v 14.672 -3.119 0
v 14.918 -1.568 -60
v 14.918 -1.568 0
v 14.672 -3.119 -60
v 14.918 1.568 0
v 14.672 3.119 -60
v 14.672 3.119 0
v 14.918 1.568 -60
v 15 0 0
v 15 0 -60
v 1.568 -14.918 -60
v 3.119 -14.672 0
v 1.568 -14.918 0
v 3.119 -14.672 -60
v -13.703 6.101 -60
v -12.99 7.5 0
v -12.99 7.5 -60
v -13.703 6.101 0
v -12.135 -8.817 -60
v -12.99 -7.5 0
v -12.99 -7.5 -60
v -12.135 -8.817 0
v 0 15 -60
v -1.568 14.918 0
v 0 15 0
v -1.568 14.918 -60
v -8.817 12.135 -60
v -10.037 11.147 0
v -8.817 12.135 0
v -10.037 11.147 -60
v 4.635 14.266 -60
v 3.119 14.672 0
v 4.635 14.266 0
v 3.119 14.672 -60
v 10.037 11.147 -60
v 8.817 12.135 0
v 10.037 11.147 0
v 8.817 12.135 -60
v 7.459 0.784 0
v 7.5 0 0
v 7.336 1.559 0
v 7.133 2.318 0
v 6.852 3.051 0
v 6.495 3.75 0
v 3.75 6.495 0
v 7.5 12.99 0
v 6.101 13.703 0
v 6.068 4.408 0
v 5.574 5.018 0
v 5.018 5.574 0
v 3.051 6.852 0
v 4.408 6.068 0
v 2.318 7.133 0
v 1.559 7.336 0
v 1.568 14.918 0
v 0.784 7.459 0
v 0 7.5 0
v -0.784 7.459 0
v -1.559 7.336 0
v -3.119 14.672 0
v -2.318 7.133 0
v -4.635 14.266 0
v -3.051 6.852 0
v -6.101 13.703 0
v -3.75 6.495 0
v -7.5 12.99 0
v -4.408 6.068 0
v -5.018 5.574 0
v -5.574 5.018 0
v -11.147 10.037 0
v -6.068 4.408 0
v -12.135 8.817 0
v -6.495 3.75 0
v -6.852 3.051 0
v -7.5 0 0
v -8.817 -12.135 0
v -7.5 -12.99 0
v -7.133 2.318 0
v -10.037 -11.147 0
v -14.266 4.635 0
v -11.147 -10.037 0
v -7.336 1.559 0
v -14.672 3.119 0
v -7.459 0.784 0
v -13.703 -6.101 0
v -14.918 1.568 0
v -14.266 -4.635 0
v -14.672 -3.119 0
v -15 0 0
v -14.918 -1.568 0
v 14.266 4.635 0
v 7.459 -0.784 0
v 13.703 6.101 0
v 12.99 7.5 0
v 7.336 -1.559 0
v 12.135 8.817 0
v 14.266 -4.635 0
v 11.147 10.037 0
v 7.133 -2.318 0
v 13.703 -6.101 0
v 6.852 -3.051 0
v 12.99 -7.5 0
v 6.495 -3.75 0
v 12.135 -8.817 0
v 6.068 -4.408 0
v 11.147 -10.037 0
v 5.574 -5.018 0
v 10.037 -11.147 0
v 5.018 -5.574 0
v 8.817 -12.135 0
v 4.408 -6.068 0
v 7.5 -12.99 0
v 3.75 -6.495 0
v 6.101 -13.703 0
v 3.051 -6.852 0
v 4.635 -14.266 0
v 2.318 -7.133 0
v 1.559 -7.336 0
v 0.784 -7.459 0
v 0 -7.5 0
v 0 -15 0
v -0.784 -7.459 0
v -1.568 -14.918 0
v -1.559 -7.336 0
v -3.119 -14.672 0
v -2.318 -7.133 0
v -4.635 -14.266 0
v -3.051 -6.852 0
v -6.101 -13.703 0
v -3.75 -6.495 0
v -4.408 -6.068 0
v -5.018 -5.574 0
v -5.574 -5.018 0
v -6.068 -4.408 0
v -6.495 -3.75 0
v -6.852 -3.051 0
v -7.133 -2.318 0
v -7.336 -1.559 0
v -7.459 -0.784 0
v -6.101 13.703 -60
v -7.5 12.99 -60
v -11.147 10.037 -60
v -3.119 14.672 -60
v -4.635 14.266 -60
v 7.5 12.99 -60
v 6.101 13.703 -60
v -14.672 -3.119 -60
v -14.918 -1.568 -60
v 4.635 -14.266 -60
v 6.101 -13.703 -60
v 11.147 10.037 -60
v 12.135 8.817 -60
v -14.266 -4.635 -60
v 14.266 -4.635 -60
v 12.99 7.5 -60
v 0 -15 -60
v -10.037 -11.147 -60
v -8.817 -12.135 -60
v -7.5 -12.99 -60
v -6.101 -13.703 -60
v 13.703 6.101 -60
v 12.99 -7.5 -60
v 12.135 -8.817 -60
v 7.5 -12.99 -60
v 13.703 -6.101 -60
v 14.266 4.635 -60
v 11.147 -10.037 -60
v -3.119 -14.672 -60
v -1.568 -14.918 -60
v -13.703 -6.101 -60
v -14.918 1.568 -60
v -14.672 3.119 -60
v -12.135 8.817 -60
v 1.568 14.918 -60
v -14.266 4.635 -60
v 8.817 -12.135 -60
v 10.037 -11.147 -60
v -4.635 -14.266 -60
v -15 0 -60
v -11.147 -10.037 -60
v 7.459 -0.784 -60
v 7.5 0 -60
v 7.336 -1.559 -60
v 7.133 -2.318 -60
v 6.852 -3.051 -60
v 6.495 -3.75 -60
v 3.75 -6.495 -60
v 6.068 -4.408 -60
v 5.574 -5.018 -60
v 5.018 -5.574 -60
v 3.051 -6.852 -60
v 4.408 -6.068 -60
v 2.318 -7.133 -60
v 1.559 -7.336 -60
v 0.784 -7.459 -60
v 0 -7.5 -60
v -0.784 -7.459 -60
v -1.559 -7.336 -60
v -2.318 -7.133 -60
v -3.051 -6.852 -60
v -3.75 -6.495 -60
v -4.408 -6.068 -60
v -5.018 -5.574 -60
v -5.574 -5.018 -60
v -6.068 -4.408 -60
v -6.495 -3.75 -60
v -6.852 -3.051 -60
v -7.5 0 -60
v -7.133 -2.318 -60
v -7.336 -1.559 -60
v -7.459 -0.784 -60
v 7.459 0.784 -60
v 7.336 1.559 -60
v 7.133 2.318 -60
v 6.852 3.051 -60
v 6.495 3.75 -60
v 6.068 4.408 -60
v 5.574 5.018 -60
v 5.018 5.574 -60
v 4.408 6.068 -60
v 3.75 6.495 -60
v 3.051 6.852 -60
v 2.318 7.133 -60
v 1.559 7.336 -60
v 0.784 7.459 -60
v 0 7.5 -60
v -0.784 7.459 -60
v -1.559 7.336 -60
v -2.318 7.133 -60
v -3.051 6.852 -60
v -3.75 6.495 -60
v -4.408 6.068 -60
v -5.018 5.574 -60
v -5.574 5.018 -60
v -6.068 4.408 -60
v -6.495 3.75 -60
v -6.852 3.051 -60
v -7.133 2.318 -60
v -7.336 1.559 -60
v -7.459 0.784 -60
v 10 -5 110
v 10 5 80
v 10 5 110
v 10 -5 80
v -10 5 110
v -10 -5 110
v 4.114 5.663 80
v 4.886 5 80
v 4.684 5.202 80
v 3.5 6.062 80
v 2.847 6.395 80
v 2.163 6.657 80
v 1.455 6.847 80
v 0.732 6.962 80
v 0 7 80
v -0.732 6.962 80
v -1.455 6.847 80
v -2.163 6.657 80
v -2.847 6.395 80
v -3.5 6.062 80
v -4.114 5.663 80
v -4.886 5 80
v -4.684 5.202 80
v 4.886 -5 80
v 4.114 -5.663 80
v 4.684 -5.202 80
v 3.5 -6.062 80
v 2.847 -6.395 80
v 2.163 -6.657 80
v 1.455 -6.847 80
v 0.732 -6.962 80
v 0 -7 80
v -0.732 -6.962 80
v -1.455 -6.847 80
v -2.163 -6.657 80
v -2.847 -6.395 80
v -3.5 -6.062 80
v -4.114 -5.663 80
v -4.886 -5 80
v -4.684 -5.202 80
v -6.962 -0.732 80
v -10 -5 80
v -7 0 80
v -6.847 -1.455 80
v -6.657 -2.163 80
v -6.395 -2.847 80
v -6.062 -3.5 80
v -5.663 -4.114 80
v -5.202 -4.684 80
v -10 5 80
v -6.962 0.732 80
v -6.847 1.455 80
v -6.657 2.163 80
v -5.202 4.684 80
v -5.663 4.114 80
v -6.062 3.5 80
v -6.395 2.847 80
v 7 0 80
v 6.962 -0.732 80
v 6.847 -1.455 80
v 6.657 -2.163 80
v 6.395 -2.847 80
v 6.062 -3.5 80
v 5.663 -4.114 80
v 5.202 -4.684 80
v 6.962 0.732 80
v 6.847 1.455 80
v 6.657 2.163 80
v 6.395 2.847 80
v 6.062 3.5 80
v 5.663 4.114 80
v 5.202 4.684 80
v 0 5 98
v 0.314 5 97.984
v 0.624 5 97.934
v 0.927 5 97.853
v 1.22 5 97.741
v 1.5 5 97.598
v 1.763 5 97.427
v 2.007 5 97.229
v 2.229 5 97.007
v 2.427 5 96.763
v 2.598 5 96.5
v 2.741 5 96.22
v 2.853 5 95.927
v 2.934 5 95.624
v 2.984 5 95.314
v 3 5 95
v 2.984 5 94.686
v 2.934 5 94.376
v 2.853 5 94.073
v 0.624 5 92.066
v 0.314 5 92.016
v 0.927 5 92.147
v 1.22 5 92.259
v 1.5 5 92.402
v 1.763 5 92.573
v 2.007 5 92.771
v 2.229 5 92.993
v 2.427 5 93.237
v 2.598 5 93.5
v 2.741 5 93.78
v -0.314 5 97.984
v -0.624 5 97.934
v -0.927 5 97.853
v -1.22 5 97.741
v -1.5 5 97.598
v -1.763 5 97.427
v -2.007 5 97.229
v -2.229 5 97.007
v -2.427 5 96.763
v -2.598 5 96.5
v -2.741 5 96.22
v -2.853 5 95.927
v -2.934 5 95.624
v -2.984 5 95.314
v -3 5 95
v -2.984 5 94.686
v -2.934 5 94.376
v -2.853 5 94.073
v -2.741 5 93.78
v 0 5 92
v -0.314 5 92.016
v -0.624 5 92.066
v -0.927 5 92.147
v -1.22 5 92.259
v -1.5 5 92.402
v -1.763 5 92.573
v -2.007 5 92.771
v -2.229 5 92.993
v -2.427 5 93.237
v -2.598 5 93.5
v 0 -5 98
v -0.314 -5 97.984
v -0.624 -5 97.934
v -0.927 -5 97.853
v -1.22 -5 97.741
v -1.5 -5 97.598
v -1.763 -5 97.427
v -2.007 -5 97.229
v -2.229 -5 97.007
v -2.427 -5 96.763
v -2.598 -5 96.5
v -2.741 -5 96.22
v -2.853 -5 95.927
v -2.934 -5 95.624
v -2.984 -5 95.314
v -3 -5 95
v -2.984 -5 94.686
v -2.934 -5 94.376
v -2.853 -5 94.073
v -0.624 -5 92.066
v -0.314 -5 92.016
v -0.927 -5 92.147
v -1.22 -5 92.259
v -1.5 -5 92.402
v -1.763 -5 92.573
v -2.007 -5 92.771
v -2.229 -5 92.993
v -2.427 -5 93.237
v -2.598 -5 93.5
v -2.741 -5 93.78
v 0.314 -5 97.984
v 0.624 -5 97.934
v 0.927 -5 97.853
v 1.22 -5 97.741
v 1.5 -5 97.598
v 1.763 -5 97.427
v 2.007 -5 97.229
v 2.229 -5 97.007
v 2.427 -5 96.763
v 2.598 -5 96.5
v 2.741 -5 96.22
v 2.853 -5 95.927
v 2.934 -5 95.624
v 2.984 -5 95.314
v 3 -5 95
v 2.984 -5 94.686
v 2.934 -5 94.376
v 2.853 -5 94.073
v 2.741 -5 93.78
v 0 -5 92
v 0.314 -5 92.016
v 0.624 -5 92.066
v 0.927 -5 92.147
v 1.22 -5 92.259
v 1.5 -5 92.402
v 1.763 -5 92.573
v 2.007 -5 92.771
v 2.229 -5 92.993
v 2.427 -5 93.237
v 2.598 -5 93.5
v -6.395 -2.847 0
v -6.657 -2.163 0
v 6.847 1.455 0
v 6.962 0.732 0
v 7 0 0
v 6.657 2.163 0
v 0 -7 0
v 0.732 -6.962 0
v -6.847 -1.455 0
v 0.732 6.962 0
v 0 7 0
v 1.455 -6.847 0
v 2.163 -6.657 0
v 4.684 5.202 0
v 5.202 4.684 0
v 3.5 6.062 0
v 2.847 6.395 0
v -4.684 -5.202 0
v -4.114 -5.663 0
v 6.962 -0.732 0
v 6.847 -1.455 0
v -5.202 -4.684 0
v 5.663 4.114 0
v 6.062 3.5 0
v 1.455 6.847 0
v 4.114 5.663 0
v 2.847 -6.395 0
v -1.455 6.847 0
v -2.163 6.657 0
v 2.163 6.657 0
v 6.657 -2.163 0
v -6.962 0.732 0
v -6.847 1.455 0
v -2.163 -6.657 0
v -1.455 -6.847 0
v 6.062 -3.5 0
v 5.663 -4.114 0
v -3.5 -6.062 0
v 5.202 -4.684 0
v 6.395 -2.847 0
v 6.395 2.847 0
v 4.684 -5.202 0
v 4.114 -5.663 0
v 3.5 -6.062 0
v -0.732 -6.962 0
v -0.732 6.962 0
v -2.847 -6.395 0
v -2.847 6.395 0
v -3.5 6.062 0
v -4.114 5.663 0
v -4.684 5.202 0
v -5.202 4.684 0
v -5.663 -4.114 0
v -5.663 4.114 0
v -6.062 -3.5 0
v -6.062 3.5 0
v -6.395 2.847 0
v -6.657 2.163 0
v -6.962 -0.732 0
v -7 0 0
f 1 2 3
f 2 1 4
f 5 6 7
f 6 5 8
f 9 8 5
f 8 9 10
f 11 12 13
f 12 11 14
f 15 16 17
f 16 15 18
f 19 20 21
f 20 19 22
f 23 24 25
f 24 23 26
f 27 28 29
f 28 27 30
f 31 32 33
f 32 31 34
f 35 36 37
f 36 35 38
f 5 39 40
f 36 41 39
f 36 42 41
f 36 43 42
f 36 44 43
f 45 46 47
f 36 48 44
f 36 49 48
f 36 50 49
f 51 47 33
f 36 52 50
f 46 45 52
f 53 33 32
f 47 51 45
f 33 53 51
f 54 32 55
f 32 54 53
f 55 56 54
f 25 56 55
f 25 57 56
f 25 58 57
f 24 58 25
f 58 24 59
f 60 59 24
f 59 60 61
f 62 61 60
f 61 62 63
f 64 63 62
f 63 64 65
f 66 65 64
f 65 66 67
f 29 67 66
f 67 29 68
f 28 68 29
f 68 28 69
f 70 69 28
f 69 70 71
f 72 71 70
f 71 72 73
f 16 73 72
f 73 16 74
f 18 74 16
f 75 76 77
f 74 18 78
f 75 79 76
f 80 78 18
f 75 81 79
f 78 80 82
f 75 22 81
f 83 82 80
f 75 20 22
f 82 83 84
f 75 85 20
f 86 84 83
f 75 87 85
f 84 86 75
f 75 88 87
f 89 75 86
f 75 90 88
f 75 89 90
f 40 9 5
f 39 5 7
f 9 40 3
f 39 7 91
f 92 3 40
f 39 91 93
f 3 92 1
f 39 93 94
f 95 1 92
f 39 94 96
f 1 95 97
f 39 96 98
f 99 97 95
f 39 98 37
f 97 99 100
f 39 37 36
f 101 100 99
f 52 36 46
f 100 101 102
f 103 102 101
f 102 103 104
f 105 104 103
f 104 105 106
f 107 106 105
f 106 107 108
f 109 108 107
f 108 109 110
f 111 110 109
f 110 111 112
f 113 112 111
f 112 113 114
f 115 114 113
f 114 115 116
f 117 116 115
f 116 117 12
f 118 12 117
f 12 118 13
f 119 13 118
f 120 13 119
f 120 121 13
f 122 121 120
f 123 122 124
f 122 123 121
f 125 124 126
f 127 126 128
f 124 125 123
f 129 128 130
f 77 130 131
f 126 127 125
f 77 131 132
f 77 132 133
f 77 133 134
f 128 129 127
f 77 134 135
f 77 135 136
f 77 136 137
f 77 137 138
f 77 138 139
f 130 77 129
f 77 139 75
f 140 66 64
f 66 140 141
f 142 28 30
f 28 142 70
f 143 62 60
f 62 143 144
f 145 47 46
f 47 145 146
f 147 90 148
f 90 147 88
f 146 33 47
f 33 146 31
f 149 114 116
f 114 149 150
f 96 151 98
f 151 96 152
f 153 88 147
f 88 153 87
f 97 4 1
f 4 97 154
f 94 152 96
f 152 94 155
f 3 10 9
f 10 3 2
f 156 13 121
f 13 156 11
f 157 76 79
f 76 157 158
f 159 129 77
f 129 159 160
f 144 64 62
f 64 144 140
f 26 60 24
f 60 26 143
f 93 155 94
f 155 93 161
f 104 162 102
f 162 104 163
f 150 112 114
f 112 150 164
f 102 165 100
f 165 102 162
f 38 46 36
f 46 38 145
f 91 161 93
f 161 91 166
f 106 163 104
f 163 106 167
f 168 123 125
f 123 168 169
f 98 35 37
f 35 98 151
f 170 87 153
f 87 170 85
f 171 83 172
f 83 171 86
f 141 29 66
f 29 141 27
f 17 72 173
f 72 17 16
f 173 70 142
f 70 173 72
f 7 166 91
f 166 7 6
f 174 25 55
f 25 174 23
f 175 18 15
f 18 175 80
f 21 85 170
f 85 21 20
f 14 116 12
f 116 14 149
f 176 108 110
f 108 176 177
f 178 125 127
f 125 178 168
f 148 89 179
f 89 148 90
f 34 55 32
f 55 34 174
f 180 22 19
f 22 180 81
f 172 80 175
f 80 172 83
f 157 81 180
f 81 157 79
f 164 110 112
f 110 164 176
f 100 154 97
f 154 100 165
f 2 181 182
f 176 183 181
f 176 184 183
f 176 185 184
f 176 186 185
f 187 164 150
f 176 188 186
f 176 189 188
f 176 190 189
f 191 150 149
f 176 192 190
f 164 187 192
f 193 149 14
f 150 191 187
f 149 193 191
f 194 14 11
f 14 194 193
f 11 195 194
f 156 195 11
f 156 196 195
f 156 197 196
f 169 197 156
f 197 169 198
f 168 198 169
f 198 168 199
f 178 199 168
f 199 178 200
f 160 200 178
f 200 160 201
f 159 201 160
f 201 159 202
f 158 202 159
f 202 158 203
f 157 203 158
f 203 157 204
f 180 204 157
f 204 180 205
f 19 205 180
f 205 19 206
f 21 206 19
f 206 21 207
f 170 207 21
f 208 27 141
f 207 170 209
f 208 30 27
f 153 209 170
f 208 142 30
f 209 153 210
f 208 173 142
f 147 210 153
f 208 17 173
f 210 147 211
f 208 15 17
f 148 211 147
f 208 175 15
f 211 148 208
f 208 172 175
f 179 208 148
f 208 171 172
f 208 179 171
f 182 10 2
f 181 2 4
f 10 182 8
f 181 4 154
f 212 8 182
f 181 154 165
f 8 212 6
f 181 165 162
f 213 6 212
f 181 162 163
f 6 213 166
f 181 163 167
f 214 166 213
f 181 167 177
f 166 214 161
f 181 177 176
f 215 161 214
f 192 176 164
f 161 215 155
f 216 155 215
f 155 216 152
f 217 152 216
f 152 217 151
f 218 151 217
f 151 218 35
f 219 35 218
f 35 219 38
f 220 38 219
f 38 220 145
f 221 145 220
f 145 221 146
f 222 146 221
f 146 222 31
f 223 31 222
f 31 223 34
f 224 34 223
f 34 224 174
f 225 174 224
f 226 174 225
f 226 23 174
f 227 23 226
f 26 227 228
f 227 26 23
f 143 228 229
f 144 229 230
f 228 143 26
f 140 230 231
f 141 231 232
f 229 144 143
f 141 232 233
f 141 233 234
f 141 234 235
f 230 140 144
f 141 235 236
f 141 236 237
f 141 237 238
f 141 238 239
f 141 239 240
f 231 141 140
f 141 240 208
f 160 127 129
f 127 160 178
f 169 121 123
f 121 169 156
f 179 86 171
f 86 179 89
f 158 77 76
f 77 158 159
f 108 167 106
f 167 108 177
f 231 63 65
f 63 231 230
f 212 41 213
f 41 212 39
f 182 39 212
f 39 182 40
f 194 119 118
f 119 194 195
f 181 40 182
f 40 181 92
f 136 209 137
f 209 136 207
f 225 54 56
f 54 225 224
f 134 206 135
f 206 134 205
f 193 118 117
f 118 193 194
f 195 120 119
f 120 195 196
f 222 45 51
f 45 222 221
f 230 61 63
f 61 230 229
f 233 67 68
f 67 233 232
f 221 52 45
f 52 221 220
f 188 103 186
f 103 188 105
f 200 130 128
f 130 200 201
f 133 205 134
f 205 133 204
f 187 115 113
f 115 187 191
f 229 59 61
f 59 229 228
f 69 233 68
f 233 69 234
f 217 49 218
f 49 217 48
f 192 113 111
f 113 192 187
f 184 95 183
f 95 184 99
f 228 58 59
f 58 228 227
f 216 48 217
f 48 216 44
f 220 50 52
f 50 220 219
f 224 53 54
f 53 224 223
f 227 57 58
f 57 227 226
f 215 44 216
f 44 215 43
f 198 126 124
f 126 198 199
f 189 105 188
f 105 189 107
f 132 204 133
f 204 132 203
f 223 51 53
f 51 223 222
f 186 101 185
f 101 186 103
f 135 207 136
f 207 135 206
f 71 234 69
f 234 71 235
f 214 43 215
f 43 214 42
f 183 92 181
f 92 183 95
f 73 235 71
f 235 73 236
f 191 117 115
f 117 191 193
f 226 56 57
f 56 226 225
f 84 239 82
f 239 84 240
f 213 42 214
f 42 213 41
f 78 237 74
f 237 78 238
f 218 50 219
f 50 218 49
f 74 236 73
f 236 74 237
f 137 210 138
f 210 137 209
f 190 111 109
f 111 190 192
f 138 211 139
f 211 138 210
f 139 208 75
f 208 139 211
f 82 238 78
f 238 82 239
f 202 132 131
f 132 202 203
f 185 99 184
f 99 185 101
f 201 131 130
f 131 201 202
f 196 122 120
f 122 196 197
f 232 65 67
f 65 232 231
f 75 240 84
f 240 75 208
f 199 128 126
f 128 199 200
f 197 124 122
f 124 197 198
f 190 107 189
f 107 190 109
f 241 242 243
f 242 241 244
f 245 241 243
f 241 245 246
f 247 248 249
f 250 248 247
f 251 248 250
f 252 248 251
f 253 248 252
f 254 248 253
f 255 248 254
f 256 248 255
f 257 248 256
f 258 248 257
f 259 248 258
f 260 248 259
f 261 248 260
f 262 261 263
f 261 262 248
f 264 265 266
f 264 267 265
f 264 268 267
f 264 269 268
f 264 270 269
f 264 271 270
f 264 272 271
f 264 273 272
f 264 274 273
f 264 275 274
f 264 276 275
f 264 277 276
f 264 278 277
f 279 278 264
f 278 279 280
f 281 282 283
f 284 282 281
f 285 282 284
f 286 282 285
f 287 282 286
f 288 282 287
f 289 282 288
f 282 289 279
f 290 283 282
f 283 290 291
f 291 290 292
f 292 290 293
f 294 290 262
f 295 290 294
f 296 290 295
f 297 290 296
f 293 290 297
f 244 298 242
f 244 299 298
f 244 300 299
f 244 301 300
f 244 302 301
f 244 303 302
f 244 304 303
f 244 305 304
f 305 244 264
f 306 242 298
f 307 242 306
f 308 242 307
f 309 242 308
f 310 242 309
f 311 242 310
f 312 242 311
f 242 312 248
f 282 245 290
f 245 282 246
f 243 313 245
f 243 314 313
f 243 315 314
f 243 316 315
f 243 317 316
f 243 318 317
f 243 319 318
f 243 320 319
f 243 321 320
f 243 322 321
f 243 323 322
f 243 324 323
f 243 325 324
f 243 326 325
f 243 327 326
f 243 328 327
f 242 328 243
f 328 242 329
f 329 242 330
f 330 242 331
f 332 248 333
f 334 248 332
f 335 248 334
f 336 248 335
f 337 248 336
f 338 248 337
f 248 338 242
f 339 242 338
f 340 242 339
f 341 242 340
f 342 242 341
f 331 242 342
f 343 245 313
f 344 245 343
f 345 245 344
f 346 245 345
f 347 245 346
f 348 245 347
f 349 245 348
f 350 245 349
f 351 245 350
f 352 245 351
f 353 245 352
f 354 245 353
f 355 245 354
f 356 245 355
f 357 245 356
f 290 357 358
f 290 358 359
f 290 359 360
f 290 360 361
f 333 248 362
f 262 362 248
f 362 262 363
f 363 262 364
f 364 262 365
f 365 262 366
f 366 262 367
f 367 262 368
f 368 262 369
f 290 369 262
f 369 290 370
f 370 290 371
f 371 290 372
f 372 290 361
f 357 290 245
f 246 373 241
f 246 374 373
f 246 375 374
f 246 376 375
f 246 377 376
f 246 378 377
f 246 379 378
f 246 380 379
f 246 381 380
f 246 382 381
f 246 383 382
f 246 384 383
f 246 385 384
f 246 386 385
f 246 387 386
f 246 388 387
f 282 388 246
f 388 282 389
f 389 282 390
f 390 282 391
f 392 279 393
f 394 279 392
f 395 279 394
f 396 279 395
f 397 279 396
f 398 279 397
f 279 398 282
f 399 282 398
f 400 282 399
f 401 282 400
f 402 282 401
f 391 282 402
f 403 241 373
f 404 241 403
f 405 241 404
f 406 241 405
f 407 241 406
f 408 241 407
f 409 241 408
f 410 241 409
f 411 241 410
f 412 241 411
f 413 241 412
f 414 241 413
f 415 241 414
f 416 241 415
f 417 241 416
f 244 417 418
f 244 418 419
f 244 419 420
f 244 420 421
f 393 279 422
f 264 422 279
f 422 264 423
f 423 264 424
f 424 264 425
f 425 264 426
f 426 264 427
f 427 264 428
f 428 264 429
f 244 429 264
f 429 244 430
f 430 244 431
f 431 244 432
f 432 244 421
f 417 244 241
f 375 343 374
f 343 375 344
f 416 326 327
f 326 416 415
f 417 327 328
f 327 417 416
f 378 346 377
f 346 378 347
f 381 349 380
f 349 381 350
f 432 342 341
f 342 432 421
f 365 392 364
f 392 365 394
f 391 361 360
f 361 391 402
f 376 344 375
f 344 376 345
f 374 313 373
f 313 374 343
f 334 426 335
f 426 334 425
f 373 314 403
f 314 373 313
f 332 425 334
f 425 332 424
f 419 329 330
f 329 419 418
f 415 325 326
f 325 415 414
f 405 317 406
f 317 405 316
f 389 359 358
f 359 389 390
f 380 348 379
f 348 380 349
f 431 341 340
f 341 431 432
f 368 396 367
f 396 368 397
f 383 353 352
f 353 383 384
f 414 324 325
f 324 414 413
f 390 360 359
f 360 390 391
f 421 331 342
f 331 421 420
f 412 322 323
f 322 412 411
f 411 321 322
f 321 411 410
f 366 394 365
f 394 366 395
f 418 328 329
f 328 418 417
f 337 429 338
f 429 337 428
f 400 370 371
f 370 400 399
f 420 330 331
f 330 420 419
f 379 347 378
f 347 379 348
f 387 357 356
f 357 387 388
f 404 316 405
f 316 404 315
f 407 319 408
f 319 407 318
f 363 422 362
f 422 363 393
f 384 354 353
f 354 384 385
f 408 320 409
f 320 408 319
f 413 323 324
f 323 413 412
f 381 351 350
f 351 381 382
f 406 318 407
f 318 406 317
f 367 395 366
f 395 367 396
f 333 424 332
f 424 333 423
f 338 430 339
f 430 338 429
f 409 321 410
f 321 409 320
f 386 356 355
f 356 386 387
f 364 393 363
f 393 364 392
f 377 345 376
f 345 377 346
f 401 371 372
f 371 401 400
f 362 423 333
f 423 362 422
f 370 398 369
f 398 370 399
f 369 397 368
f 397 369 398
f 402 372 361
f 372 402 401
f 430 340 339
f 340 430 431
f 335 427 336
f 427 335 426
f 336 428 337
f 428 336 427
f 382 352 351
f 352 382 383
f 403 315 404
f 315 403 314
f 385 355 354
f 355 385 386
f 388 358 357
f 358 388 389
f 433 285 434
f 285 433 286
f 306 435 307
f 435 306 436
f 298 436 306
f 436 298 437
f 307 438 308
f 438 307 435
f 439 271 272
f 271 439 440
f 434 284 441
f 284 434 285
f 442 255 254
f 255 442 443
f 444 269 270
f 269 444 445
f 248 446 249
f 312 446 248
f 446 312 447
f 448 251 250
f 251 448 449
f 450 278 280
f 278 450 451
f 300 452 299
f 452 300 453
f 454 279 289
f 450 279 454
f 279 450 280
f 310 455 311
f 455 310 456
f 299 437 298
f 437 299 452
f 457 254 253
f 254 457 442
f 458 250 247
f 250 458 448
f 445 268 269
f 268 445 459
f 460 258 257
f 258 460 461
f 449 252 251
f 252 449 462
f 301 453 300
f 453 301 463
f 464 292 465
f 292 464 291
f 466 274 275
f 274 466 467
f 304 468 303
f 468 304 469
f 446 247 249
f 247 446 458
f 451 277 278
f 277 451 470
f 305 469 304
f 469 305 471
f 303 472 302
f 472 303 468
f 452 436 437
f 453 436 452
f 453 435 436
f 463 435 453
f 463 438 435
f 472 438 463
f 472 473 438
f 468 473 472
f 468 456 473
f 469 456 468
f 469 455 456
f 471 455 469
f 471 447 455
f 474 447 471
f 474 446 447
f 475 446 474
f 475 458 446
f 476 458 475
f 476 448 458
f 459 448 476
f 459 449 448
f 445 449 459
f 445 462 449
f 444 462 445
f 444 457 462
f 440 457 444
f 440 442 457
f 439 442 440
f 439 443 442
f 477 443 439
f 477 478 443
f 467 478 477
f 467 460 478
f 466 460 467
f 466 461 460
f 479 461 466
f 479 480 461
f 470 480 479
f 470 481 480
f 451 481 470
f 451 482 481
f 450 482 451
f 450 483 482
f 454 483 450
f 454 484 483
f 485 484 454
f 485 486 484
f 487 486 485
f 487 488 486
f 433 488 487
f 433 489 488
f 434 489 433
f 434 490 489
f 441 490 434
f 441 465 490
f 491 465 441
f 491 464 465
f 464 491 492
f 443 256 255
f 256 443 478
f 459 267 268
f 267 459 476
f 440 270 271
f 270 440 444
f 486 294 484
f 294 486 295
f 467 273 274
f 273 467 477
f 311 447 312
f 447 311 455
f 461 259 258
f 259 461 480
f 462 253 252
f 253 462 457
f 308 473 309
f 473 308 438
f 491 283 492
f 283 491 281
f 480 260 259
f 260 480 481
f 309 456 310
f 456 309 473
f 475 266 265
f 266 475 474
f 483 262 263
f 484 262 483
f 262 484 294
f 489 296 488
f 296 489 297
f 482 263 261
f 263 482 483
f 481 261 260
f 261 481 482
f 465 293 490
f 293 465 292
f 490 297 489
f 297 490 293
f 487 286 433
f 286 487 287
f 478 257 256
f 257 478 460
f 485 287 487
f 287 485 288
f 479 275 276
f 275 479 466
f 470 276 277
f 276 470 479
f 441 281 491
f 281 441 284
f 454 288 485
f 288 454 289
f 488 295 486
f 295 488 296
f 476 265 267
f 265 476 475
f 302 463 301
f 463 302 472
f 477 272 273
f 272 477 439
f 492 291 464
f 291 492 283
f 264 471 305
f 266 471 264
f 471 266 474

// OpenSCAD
// OpenSCAD verification: hydraulic cylinder components
$fn = 60;

module cylinder_body(d = 30, h = 60) {
    difference() {
        cylinder(d = d, h = h, center = true);
        // bore hole
        cylinder(d = 15, h = h + 1, center = true);
    }
}

module piston_rod(d = 14, l = 80) {
    cylinder(d = d, h = l, center = false);
}

module clevis(w = 20, h = 30, pin_d = 6) {
    difference() {
        translate([-w/2, -5, 0]) cube([w, 10, h]);
        translate([0, 0, h/2]) rotate([90, 0, 0]) 
            cylinder(d = pin_d, h = 12, center = true);
    }
}

translate([0, 0, -30]) cylinder_body();
translate([0, 0, 0]) piston_rod();
translate([0, 0, 80]) rotate([0, 0, 0]) clevis();
